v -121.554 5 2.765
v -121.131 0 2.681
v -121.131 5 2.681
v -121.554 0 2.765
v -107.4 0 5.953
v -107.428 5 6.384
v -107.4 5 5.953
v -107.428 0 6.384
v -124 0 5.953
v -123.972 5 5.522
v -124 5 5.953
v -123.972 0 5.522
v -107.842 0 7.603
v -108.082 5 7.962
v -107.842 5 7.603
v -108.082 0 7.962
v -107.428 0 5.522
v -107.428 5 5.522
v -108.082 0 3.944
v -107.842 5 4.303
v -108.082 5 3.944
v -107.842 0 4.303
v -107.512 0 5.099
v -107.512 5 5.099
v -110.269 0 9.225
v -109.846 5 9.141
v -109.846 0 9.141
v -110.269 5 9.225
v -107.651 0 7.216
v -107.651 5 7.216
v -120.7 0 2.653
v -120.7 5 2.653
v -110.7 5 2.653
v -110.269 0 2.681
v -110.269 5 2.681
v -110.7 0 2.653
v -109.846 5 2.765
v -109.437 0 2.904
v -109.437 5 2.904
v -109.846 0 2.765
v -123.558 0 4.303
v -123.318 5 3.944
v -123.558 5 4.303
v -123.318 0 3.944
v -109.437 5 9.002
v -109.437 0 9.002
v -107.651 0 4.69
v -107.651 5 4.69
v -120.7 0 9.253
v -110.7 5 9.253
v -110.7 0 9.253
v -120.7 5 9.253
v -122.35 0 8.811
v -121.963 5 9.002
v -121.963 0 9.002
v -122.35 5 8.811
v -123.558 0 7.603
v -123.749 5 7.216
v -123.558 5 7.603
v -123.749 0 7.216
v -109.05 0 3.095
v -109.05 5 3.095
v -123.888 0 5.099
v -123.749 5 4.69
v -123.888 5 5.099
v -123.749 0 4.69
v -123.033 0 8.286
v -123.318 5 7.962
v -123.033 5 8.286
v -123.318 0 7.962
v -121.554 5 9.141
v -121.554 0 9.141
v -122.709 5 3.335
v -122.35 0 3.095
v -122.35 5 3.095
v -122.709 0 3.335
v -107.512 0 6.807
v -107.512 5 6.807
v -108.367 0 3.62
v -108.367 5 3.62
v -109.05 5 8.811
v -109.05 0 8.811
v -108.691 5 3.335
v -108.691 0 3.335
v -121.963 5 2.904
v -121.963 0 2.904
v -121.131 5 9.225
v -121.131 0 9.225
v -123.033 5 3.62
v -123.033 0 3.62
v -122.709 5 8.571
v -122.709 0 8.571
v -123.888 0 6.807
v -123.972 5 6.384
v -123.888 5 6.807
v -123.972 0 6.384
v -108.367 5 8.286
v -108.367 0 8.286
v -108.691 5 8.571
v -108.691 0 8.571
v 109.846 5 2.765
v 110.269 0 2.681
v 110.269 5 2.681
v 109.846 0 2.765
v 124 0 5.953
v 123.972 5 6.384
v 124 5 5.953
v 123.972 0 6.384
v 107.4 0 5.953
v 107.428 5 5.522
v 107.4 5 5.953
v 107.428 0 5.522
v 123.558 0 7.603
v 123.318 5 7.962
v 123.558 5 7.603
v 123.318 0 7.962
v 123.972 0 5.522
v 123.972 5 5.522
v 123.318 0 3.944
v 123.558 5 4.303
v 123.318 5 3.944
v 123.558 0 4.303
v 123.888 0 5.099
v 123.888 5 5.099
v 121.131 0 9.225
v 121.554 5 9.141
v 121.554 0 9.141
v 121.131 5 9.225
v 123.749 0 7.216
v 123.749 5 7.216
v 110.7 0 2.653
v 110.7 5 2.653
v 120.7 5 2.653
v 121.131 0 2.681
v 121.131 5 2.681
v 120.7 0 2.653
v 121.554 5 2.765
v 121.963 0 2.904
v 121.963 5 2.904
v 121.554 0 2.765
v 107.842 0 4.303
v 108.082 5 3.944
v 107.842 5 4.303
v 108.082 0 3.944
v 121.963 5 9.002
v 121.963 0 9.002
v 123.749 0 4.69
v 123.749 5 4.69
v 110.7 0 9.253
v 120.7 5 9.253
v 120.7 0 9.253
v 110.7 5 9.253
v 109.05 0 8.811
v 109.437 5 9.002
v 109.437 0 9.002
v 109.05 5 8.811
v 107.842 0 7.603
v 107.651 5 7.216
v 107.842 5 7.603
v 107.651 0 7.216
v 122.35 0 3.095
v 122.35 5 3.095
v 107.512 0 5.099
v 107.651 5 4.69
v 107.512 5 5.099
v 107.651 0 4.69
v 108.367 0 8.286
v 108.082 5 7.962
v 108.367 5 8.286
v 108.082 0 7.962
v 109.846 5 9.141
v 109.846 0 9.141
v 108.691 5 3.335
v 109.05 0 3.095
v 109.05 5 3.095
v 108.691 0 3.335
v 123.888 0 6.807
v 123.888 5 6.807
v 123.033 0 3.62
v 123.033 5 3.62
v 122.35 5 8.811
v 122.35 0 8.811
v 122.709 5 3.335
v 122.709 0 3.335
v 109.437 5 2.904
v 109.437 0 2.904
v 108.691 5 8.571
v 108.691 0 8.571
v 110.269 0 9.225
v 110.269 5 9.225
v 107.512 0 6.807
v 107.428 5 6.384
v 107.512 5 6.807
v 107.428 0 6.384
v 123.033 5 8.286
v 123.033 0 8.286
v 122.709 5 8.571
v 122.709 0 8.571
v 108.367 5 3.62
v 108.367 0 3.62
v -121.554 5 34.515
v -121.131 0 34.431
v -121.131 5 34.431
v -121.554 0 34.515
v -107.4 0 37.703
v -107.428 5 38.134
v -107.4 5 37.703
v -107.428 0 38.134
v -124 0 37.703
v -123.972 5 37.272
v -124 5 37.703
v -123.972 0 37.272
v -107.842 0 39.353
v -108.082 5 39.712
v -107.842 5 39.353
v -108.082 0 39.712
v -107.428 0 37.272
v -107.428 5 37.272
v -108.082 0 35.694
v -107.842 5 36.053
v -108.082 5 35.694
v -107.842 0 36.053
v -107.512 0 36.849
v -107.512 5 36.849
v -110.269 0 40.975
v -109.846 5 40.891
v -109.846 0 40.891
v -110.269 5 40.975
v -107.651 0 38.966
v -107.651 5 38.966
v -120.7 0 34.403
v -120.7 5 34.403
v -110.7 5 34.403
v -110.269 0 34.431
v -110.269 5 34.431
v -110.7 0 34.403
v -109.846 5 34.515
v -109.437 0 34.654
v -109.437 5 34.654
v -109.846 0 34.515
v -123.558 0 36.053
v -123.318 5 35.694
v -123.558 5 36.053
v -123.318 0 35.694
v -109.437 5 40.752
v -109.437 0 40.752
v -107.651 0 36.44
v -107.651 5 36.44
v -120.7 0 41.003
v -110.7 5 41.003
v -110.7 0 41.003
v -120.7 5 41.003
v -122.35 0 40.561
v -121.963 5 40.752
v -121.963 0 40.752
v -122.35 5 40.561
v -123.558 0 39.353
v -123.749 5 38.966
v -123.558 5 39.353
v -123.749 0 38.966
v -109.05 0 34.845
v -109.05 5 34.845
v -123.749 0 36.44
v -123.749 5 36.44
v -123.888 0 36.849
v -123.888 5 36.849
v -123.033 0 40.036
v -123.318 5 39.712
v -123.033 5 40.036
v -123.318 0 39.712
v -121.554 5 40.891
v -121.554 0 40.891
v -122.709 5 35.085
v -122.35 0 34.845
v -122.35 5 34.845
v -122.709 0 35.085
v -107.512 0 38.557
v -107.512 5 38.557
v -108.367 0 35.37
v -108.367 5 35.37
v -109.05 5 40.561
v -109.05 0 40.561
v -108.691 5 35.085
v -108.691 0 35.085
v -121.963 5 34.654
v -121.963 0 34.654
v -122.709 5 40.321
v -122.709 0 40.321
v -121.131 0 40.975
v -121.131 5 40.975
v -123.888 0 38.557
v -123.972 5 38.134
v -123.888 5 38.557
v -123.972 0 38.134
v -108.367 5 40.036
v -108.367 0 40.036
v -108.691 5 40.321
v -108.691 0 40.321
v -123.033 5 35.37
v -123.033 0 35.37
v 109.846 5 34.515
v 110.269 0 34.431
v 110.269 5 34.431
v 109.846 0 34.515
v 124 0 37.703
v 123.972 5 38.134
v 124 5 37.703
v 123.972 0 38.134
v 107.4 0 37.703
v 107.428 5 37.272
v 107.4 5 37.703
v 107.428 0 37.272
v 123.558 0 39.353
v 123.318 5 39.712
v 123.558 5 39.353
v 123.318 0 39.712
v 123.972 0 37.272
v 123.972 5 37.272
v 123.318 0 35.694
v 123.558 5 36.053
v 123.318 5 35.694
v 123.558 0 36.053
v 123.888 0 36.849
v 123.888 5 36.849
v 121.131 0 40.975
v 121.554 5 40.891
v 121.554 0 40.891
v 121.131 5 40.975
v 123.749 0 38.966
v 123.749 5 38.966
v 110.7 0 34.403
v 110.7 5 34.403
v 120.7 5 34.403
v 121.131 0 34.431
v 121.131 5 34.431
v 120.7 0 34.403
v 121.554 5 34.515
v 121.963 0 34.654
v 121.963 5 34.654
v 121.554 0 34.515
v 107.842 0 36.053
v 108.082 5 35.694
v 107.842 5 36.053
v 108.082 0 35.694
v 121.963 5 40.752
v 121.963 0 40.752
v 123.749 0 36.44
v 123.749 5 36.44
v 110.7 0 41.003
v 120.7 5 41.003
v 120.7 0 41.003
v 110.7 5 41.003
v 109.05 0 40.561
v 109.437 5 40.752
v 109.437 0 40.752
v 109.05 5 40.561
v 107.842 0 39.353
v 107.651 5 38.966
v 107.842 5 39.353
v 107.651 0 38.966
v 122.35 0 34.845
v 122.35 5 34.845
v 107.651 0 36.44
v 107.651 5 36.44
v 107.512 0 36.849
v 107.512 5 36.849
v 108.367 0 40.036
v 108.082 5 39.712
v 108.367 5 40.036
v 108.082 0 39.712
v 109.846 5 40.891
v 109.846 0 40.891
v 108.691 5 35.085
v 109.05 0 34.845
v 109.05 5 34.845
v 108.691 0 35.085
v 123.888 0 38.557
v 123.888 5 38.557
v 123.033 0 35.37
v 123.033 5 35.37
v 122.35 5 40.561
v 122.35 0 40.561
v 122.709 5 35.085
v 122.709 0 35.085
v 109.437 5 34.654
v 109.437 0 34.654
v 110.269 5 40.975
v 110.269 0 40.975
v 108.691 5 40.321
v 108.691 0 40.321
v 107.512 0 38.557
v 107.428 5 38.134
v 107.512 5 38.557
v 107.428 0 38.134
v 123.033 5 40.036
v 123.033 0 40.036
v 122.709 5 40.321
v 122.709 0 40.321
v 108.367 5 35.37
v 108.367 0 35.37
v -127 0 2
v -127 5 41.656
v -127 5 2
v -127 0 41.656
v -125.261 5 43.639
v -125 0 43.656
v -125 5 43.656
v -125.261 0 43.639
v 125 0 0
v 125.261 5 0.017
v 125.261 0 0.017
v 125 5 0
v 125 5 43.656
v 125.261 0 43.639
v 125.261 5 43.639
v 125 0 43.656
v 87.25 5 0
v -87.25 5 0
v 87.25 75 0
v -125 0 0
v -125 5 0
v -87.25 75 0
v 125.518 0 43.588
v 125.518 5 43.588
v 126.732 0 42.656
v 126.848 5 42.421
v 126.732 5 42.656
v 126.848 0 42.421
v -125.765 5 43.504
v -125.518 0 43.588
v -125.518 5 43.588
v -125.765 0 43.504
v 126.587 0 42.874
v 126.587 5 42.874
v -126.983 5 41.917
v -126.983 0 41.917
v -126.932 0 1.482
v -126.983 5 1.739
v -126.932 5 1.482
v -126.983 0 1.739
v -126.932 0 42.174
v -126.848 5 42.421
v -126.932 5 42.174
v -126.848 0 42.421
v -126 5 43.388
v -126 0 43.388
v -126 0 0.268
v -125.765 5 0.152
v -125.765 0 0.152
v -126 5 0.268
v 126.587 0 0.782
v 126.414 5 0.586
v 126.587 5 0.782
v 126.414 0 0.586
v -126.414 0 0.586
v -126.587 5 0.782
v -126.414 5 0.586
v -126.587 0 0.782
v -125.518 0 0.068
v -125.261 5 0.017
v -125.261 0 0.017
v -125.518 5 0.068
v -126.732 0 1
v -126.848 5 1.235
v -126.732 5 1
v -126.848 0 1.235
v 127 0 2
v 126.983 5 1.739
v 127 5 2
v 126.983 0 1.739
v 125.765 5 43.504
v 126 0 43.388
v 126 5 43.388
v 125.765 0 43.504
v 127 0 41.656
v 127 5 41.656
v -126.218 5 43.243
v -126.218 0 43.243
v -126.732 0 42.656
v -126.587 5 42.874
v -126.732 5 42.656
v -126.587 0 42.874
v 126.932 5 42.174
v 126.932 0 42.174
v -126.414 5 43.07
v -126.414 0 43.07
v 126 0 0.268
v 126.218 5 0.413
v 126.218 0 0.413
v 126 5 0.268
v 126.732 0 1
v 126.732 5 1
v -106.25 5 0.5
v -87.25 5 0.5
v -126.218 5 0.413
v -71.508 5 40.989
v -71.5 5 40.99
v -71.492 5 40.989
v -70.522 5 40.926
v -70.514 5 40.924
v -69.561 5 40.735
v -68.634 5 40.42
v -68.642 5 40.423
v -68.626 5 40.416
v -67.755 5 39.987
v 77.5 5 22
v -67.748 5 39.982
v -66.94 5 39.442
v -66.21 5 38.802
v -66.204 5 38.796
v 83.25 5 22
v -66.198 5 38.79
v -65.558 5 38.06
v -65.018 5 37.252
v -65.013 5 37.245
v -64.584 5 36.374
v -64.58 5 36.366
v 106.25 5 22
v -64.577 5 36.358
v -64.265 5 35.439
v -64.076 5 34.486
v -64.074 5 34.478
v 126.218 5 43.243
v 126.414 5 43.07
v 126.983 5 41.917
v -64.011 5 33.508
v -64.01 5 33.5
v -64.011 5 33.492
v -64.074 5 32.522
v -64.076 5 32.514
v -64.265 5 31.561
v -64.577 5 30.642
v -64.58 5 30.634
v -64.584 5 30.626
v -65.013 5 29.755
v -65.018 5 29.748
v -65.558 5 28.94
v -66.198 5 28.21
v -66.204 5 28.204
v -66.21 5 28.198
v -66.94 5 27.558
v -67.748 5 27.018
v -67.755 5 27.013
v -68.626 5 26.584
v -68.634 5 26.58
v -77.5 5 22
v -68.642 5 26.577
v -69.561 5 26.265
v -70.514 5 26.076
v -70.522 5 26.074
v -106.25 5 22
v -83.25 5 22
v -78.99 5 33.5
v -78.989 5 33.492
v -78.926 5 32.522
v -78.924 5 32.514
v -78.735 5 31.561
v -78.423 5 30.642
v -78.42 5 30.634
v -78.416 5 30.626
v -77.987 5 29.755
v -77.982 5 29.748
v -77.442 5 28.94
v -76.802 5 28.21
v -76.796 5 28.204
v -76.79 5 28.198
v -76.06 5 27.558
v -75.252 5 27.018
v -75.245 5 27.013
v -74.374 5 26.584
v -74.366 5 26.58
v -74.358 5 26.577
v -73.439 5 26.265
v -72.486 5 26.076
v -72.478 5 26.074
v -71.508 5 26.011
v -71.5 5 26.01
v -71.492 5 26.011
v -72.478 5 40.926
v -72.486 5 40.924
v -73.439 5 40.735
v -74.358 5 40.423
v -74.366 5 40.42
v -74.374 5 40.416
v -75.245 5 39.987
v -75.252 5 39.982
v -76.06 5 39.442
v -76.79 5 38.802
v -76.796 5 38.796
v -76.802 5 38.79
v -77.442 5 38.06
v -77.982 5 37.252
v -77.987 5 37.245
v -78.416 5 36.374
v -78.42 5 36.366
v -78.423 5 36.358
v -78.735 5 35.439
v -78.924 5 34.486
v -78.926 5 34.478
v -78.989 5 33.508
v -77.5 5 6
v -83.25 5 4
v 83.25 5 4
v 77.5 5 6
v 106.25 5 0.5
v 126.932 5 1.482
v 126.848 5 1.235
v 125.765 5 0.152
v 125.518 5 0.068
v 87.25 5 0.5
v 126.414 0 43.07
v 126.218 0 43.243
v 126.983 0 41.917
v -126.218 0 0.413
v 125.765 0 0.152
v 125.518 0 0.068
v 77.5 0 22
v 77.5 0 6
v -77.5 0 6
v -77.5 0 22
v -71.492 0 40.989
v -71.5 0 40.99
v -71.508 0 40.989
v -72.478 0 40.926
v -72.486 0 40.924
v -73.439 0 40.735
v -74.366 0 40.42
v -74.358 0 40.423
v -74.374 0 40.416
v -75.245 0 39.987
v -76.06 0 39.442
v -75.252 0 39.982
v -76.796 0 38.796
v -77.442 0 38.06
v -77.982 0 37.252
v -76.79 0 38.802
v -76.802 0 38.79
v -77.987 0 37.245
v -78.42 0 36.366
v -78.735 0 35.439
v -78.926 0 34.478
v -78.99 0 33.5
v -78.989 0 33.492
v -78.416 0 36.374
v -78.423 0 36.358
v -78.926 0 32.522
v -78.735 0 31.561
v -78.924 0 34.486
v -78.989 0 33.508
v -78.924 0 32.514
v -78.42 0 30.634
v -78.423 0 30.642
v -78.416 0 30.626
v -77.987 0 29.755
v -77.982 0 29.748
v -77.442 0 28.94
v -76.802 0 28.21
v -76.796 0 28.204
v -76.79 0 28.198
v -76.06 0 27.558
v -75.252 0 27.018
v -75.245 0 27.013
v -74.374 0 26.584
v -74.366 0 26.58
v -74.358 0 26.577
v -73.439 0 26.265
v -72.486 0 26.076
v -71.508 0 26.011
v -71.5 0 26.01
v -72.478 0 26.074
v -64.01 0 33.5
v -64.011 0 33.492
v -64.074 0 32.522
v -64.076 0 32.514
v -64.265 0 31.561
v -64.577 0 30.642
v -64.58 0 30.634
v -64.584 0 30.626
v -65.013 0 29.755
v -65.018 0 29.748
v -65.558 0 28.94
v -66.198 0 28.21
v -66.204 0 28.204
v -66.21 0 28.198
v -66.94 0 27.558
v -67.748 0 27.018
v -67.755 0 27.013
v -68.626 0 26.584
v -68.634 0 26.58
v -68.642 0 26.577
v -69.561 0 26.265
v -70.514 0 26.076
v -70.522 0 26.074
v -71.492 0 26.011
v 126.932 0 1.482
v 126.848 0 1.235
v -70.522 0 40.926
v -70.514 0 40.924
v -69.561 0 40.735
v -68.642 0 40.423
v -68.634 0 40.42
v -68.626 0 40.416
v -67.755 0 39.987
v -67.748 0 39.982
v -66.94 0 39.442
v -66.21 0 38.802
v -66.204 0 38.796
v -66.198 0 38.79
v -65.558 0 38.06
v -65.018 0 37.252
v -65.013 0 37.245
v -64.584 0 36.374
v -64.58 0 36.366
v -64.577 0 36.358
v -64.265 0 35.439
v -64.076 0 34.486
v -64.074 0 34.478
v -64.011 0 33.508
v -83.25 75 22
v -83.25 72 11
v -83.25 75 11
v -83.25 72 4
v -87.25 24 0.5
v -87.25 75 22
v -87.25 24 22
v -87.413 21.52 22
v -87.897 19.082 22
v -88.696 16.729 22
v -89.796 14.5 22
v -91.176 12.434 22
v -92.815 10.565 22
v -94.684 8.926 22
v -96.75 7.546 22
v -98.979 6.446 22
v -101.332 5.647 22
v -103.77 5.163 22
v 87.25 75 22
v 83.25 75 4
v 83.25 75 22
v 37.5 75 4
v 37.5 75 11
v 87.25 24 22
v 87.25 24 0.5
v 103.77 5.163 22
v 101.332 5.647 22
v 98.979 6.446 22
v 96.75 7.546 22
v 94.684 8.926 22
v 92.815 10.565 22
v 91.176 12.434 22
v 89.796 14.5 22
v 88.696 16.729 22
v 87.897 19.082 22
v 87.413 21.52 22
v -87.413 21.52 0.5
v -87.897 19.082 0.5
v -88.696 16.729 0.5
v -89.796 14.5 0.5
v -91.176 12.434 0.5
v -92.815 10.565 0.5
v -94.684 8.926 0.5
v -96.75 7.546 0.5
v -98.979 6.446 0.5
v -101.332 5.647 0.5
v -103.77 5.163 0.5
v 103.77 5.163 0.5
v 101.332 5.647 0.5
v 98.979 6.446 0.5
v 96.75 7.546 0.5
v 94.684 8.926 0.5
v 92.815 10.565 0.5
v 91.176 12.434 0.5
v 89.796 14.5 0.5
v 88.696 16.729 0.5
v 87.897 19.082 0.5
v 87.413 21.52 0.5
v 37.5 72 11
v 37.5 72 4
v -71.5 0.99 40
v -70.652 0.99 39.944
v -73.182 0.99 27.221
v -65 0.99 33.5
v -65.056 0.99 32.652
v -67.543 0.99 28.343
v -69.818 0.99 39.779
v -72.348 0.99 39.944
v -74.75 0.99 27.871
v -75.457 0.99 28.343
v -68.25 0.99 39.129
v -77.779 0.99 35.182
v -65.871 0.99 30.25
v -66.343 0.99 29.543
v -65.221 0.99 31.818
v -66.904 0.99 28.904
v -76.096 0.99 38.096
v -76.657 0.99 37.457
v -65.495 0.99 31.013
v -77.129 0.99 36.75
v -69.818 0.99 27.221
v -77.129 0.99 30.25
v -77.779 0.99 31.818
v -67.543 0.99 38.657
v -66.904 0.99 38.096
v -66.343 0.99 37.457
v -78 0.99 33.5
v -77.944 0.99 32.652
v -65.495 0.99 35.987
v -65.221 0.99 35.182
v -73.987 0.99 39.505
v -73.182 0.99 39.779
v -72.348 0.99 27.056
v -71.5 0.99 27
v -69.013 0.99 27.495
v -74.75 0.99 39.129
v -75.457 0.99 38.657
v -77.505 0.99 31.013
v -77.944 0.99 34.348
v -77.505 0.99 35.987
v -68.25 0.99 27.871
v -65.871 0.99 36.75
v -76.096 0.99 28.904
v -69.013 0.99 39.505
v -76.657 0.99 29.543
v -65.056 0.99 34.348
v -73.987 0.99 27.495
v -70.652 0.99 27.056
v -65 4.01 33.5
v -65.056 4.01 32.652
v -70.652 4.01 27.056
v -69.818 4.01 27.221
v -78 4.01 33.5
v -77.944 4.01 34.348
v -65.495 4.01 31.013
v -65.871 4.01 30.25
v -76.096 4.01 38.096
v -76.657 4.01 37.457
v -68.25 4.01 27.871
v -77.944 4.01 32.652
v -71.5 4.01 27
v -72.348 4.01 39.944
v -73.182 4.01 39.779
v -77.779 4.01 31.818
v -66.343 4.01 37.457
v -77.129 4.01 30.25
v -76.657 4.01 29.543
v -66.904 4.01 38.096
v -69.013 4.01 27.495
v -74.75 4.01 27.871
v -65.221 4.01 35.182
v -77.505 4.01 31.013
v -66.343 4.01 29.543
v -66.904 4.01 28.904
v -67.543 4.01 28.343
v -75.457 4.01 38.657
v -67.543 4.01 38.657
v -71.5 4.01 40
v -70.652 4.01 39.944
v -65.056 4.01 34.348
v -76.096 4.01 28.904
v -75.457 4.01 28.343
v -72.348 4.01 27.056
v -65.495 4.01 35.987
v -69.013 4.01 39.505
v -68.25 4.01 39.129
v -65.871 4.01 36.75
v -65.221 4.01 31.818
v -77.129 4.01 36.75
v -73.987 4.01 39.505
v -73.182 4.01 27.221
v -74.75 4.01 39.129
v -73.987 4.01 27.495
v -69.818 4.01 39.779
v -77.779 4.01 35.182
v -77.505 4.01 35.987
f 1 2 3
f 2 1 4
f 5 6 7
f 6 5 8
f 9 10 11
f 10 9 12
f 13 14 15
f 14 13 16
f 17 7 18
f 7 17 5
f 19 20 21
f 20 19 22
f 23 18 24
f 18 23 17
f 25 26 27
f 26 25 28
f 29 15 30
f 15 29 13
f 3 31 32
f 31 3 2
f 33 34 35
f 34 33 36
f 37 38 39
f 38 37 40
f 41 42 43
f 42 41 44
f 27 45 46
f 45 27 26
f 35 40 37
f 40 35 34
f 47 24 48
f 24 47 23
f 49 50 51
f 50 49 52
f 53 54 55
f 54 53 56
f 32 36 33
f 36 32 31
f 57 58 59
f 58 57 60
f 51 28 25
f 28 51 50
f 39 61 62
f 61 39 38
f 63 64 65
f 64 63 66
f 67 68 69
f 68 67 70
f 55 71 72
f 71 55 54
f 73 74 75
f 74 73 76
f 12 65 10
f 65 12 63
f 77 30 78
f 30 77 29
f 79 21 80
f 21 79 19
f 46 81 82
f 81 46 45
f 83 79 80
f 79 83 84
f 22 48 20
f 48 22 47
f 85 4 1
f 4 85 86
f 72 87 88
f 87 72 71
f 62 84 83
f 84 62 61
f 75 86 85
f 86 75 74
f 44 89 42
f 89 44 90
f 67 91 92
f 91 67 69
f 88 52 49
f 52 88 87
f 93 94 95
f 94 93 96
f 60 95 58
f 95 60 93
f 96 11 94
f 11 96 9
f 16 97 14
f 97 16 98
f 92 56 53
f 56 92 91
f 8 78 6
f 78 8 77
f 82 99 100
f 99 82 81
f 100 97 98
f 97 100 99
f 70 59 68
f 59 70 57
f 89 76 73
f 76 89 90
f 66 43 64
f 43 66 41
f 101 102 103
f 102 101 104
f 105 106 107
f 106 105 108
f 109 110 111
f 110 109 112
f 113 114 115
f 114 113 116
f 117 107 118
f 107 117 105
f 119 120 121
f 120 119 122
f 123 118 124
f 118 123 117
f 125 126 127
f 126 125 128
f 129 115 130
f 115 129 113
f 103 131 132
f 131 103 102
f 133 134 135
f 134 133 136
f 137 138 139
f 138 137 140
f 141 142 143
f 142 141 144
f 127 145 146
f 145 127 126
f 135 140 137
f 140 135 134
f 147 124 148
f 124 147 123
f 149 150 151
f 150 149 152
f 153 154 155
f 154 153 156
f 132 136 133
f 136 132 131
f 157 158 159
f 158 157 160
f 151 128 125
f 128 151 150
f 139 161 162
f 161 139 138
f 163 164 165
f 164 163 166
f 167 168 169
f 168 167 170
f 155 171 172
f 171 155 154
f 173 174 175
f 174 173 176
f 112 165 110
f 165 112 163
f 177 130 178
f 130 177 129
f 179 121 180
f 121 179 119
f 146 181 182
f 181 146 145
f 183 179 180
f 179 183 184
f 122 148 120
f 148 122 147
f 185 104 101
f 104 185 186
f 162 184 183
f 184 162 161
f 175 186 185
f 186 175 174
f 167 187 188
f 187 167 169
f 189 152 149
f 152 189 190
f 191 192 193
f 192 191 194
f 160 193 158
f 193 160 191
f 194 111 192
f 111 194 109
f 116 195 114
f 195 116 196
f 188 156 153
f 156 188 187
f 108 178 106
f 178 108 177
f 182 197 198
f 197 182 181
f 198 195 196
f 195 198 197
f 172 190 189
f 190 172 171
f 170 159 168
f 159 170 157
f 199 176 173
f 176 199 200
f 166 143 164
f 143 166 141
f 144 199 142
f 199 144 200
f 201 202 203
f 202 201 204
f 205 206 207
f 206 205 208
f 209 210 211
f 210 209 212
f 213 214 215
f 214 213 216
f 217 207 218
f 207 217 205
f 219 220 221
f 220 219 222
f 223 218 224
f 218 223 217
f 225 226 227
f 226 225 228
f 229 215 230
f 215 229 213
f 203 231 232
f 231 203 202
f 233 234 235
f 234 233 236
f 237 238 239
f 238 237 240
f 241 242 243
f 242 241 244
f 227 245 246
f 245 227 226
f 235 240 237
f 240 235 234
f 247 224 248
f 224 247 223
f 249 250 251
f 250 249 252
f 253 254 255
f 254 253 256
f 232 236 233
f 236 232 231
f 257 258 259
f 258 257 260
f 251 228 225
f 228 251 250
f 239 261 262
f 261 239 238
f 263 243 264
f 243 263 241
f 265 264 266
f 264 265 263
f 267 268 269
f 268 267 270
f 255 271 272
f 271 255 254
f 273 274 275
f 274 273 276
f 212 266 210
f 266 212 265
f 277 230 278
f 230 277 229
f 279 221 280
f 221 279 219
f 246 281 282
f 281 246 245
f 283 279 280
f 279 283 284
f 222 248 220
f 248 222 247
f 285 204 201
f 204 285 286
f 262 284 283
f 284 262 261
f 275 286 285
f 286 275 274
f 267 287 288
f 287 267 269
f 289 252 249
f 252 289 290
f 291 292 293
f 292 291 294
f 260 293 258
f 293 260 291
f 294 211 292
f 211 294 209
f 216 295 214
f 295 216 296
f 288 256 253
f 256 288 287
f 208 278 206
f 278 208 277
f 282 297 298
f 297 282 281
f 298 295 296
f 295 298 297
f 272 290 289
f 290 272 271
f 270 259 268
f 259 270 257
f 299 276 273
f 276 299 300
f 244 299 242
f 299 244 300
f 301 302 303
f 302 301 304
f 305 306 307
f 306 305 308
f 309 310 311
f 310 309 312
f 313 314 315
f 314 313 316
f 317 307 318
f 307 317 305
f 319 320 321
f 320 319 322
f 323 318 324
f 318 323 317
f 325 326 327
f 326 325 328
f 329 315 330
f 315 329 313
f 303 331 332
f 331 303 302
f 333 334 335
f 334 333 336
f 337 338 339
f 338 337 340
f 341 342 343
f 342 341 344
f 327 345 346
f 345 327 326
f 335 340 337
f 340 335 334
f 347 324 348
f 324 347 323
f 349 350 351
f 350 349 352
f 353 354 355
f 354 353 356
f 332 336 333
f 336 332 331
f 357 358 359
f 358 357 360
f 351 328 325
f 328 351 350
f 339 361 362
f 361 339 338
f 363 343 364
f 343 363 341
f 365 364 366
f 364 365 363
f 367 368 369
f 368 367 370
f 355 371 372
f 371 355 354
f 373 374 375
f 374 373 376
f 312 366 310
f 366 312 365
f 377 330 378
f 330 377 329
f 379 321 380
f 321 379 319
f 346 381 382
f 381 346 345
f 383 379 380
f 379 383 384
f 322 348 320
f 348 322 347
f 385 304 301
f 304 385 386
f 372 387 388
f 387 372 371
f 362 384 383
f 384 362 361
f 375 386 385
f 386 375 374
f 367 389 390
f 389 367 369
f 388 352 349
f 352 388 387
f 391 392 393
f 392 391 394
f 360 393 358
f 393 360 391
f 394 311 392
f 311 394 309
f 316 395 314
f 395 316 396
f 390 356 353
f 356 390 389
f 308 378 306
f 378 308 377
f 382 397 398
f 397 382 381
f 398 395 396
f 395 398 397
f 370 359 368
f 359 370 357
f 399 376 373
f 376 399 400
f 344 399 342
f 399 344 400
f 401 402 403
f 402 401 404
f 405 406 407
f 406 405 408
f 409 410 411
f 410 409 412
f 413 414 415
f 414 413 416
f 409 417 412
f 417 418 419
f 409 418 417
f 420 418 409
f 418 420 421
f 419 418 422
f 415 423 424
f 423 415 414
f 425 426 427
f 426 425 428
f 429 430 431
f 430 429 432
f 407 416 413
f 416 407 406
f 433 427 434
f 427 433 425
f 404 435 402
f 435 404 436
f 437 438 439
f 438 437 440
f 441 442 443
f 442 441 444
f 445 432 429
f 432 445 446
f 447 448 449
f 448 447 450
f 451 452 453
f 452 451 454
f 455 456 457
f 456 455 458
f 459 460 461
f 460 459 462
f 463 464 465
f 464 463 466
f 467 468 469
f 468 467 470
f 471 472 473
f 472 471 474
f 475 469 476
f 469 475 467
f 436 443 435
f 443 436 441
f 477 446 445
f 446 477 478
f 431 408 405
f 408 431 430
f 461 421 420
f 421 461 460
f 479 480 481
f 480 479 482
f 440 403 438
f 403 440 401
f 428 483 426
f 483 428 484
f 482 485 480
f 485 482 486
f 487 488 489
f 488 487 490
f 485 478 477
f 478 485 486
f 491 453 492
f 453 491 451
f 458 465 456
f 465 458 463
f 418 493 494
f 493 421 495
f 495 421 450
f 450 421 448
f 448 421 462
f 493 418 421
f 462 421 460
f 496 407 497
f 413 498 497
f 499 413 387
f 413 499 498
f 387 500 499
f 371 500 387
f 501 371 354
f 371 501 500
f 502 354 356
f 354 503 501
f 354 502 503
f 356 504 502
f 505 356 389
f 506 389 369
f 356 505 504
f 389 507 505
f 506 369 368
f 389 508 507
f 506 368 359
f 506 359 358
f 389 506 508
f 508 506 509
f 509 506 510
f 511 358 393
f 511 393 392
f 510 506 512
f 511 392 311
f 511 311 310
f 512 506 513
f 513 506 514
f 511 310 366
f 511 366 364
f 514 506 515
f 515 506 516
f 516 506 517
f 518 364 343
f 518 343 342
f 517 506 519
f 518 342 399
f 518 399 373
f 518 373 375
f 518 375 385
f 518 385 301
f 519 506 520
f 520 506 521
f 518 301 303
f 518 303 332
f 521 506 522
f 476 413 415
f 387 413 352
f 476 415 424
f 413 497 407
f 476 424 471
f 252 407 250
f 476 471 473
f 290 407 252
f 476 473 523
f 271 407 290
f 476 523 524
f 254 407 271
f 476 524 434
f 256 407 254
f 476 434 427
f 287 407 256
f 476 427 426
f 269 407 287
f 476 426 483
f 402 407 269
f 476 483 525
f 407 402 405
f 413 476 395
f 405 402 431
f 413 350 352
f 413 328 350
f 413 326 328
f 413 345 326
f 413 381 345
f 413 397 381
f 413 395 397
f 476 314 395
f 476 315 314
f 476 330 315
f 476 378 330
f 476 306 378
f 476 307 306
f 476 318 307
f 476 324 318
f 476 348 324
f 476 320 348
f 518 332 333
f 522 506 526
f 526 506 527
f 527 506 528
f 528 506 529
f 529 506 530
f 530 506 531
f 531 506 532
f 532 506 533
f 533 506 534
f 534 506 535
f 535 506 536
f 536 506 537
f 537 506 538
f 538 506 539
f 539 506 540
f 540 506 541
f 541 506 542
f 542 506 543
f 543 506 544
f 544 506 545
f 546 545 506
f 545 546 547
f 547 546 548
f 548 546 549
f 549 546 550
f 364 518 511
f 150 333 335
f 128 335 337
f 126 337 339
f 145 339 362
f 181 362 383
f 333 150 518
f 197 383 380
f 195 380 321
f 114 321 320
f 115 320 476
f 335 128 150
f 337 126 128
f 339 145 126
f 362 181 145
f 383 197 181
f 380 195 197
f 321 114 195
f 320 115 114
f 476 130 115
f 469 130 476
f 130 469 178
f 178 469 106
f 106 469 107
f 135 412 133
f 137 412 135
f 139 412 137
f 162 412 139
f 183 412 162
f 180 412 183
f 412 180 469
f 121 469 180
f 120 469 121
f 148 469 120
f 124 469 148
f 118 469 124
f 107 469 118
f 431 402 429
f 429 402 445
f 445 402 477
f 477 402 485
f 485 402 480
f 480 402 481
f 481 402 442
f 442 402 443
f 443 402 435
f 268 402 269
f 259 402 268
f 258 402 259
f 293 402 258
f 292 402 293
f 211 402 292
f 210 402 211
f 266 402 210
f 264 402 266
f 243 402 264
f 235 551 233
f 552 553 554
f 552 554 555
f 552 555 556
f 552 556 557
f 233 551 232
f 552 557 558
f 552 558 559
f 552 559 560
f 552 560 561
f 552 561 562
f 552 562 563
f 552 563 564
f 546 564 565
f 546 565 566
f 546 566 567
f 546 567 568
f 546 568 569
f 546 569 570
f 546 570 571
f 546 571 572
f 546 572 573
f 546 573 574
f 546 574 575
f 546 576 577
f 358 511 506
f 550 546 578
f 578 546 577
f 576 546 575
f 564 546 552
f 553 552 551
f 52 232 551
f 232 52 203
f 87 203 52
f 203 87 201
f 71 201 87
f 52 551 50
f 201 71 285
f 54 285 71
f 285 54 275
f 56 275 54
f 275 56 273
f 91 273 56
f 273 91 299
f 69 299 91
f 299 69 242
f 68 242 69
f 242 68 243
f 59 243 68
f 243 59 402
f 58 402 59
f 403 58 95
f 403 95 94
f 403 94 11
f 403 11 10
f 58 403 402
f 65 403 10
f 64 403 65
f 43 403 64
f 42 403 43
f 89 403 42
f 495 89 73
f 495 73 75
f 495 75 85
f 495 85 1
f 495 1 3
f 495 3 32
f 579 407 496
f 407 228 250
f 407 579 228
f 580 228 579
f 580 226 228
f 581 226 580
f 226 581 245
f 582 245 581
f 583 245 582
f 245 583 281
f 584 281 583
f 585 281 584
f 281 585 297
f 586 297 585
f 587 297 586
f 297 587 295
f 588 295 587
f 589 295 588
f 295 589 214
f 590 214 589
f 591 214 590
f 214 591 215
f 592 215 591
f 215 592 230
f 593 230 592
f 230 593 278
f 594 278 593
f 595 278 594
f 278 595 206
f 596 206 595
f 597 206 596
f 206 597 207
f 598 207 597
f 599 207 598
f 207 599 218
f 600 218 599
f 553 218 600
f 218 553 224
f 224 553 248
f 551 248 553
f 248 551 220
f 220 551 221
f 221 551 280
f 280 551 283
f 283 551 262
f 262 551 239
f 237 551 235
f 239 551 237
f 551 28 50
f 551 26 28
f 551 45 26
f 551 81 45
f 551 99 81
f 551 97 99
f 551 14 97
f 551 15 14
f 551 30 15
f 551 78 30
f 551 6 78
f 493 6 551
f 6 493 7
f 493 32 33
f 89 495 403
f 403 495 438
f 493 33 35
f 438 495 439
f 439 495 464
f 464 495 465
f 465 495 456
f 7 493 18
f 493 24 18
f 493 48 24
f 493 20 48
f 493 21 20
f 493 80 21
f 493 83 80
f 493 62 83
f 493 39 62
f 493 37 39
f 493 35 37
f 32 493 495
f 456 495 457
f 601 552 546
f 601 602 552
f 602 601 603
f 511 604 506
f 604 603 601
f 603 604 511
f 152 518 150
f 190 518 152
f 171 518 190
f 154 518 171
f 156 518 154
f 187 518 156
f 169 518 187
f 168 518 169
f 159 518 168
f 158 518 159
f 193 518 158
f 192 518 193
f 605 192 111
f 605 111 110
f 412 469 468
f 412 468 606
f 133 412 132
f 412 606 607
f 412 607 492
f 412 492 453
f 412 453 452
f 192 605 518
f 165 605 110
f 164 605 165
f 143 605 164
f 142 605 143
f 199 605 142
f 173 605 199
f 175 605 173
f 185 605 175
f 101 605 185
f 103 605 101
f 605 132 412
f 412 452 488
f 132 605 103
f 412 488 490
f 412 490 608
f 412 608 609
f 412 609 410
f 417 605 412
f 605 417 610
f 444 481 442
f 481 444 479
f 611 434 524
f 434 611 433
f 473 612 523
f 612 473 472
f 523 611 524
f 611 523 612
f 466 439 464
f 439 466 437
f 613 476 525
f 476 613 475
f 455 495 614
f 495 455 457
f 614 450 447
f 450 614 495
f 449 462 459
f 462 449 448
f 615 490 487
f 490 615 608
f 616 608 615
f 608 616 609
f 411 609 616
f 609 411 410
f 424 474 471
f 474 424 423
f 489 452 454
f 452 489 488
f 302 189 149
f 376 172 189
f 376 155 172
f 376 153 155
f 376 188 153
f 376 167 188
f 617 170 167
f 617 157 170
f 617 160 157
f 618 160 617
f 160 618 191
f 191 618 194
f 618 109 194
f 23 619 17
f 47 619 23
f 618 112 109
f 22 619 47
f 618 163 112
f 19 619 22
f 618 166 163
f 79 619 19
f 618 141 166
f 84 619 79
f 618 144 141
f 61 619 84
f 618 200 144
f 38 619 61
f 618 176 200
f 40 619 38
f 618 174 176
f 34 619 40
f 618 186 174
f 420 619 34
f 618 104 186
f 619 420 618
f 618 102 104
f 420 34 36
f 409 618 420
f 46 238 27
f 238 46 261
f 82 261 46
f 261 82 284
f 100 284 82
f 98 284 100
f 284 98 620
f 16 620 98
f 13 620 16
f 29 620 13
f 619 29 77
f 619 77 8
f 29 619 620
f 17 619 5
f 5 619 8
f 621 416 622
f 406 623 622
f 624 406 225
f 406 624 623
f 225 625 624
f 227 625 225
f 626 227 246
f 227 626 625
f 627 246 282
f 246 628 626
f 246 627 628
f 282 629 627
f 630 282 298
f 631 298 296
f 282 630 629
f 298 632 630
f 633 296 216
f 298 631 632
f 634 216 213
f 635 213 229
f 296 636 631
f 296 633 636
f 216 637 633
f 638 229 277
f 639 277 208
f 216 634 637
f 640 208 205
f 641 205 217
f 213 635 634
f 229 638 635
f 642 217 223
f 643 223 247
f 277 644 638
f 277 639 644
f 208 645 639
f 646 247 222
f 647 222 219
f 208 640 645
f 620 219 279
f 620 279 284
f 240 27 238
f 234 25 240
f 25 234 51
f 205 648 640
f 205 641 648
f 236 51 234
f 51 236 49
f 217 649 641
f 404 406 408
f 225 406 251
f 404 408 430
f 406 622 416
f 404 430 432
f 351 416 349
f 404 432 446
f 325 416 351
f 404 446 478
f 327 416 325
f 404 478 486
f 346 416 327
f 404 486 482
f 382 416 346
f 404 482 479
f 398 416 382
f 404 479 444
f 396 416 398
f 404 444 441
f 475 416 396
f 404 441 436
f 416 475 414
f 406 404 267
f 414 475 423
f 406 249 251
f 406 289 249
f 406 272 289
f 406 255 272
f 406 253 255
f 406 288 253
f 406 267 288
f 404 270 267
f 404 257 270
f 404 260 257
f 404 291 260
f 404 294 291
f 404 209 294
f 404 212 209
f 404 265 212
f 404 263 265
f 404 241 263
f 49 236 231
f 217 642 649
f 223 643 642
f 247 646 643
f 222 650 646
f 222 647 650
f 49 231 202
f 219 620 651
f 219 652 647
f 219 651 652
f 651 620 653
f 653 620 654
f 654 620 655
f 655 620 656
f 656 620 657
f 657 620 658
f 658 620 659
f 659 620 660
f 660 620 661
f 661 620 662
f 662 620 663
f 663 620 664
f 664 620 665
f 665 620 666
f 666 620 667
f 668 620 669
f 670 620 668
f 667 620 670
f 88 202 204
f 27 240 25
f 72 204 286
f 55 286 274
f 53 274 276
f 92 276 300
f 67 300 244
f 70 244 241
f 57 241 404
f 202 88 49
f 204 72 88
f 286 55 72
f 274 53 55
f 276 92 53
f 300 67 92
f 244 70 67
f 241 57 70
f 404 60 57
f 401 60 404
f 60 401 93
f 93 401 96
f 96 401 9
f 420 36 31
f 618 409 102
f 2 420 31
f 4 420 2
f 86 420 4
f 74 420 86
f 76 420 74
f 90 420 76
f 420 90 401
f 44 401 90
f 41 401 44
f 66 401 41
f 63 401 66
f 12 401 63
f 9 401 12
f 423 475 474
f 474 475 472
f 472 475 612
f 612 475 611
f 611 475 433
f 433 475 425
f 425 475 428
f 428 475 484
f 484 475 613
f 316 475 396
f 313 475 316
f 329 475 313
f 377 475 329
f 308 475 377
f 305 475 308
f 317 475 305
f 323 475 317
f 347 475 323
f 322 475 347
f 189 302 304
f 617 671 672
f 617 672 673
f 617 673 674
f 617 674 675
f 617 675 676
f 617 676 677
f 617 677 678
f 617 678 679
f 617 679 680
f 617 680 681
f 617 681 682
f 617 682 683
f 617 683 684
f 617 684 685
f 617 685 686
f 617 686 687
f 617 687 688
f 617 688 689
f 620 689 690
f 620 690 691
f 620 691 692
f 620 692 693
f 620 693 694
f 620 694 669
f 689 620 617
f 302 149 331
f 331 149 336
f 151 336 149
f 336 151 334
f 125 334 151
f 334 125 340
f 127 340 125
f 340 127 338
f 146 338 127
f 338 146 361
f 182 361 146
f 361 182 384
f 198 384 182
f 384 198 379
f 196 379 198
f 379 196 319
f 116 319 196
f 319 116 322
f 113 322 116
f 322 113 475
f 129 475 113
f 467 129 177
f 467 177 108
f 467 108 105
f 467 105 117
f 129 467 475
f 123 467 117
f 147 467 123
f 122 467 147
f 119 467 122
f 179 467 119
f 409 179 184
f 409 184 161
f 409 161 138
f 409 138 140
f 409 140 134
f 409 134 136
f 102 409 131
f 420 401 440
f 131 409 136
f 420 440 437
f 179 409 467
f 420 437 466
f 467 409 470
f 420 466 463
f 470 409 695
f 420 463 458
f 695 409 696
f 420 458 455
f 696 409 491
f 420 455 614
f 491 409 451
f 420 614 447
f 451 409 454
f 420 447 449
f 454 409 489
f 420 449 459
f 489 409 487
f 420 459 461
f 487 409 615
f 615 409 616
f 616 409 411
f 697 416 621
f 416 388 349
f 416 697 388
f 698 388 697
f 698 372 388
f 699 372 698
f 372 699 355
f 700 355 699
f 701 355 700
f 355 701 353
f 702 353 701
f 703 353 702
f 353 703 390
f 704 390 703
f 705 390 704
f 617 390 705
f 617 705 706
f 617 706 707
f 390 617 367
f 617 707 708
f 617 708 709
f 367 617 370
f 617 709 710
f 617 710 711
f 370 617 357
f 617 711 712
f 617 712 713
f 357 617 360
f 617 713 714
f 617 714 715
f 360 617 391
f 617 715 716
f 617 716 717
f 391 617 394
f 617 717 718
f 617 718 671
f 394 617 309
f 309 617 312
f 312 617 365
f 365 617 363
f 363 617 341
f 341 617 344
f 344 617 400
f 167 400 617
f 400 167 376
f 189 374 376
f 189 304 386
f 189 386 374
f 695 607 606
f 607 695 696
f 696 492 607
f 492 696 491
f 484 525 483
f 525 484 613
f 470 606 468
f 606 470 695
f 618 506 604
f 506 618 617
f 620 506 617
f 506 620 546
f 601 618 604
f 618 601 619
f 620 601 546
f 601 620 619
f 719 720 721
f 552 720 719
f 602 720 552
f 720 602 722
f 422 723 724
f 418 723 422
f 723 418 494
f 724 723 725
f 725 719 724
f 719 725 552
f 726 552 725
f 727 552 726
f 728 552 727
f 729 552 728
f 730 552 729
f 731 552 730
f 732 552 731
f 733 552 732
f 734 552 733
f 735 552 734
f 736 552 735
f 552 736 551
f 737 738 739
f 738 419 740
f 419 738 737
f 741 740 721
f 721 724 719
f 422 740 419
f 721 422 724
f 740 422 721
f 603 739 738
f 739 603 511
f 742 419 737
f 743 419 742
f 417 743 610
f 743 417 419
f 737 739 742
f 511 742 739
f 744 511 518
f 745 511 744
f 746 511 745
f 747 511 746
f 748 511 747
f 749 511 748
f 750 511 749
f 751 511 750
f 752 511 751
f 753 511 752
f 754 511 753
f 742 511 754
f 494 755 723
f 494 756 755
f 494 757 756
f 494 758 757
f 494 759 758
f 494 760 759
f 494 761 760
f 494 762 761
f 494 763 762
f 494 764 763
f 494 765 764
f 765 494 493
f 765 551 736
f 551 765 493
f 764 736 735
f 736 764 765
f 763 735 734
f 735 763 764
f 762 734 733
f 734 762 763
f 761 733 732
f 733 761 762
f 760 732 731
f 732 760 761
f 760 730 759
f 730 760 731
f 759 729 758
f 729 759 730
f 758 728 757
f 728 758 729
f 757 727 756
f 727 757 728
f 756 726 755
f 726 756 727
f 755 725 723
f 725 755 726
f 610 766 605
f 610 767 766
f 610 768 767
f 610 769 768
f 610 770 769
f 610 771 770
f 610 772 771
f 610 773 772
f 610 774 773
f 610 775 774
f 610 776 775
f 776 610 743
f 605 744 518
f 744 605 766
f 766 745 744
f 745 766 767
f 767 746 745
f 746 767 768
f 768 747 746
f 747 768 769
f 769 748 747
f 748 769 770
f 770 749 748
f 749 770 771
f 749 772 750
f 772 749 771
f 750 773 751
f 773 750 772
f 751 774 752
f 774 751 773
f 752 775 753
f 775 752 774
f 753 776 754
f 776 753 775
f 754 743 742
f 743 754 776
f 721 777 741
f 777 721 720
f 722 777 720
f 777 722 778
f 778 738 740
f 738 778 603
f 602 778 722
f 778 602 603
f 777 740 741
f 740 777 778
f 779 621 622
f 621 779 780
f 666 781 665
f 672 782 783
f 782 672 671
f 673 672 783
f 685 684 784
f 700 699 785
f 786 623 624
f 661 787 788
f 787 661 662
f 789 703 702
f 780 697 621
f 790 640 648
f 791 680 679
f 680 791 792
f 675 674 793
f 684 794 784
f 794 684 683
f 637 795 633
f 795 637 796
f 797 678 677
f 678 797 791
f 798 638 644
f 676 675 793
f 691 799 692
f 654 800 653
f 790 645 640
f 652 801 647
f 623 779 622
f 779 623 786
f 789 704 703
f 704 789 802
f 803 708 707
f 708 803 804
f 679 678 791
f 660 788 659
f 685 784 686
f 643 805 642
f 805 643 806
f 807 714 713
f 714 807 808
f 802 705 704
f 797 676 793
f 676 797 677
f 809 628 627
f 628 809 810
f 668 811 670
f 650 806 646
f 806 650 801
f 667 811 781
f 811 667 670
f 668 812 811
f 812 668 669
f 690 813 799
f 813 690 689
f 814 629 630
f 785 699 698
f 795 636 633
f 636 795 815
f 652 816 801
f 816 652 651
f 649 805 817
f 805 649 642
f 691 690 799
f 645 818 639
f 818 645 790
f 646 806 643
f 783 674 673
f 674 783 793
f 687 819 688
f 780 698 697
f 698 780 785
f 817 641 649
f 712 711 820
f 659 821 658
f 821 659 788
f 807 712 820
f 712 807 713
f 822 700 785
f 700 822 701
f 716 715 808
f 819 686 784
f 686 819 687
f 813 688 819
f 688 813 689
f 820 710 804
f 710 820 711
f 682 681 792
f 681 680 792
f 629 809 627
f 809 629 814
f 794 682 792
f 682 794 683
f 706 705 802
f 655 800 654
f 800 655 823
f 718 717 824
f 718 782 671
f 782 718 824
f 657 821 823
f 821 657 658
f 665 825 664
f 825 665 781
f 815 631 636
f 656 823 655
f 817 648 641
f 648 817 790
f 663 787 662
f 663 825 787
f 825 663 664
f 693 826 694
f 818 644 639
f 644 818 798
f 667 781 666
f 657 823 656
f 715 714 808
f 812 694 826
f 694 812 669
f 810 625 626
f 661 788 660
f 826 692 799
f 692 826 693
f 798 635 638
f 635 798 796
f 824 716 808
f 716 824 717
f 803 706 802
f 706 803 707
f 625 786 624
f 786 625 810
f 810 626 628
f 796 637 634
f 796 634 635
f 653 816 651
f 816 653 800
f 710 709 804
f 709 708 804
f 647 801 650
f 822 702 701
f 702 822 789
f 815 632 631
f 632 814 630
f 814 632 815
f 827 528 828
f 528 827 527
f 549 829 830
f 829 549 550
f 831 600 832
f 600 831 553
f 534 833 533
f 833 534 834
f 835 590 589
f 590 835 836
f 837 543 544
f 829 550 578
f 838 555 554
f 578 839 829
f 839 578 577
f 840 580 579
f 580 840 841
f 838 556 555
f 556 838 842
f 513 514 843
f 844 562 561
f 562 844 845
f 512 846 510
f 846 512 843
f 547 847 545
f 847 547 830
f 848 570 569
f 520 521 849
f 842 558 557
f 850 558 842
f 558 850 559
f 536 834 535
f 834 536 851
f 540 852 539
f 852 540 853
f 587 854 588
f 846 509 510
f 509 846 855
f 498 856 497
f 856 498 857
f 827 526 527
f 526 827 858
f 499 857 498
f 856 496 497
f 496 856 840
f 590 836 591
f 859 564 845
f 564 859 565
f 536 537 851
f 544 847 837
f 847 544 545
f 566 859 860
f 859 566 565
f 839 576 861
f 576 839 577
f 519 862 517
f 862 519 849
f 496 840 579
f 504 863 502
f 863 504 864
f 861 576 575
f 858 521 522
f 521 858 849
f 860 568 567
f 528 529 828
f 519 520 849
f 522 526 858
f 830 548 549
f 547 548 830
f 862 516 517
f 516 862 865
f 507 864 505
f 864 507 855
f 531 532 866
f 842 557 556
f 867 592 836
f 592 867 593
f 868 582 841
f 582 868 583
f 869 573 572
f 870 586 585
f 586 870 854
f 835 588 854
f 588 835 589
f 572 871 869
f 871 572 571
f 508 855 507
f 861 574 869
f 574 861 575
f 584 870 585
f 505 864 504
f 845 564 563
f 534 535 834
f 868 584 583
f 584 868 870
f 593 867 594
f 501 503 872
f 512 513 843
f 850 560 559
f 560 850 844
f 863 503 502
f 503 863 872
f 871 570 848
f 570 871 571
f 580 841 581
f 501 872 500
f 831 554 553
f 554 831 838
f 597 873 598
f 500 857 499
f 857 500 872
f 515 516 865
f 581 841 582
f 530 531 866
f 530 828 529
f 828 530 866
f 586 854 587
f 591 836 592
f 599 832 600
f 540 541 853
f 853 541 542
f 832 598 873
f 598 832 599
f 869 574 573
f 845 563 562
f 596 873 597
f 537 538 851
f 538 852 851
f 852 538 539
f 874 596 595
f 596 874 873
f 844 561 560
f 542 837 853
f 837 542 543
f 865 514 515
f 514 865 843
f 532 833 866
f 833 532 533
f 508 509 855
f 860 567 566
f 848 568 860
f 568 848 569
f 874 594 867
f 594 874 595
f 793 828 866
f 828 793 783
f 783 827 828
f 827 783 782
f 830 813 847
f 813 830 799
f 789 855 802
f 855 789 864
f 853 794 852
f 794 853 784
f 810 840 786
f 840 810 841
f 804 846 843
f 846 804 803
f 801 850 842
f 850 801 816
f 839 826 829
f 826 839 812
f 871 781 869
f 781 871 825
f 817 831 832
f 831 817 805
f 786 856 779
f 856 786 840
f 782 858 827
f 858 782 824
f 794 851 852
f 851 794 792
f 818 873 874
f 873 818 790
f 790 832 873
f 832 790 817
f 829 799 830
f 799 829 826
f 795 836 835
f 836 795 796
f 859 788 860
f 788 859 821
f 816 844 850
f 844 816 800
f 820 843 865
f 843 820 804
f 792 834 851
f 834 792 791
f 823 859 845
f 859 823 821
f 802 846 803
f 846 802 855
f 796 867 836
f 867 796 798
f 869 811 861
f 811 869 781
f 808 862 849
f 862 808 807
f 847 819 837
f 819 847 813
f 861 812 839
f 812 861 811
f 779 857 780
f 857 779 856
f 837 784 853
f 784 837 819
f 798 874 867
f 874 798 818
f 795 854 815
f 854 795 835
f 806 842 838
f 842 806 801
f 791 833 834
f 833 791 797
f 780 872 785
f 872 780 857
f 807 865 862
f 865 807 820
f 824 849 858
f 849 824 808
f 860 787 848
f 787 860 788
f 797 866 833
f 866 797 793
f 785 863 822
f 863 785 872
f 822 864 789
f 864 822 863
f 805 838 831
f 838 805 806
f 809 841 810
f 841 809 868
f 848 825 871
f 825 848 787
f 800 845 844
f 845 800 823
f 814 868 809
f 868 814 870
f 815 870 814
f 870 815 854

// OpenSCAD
// Mounting bracket for a TP-Link 7-port USB 3.0 hub in a 10" benchtop rack, 1U.
// Geometry comes from ../lib/rack10.scad; this file only holds the hub numbers.
//
//   * The seven USB outputs are on the front and fit within 155 mm, so the
//     aperture is 155 mm wide (5 mm lip at each side) and 1 mm smaller than the
//     hub at the top and bottom.
//   * Power and USB-in are on the back, at the right end seen from the front.
//     The rear lip has a 45 mm gap there for the plugs.
//   * The power button is on top of the hub, 11 mm from its left side. Rather
//     than a lever, the hub sits as low as the bracket allows (shelf on the
//     panel bottom) and a round hole in the panel above the hub lets a pencil
//     reach in and press the button from the front.
//   * Shelf with side fins; the hub is dropped in from above and lifted
//     straight out.
//
// Print with the front panel face down on the bed (print_orientation = true).

include <../lib/rack10.scad>

/* [USB hub] */
unit_w = 165;
unit_h = 20;
unit_d = 66;
aperture_w = 155;           // the USB outputs fit within this width
rear_gap_w = 45;            // opening in the rear lip for power and USB-in, at the right end
button_x = 11;              // power button, from the left side of the hub (seen from the front)
button_y = 20;              // power button, from the front face of the hub (TODO: measure)

/* [Bracket] */
rack_u = 1;
lip_z = 2;                  // panel overlaps the hub by this much at the top and bottom
side_clear = 0.75;          // clearance between hub and each side wall
rear_clear = 1.0;           // clearance between hub and the rear stop
shelf_t = 4;                // shelf thickness; the shelf sits on the panel bottom
wall_t = 4;                 // side wall thickness
wall_above_shelf = 18;      // side wall height above the shelf top
wall_bottom = 0.5;          // side walls extend down to this z (stiffens the shelf)
fillet_r = 19;              // fillet between the outside of each side wall and the panel
                            // (0: none); max ~19 before it reaches the mounting slots
rear_stop_t = 3;            // rear lip thickness
rear_stop_h = 7;            // rear lip height above the shelf (0 for none)

/* [Power button access] */
button_hole_d = 13;         // hole in the panel above the hub, for a pencil (0: none);
                            // max ~14 between the aperture and the top edge
button_hole_z = 33.5;       // hole centre above the panel bottom
button_hole_chamfer = 1;    // edge chamfer on both faces of the hole

/* [Rendering] */
print_orientation = false;  // true: lay the bracket with the front panel on the bed
show_unit = false;          // ghost of the hub for checking fit
$fn = 48;

unit    = [unit_w, unit_d, unit_h];
panel_t = 5;
panel_h = panel_height(rack_u);
unit_z  = shelf_t;                                // hub bottom; the shelf rests on z = 0
lip     = [(unit_w - aperture_w) / 2, lip_z];
hole_x  = -unit_w / 2 + button_x;                 // the hole is straight above the button

assert(button_hole_d == 0 || button_hole_z - button_hole_d / 2 >= unit_z + unit_h - lip_z + 3,
       "button hole breaks into the aperture: raise button_hole_z or shrink it");
assert(button_hole_d == 0 || button_hole_z + button_hole_d / 2 <= panel_h - 3,
       "button hole too close to the top of the panel");
assert(button_hole_d == 0 || abs(hole_x) + button_hole_d / 2 <= unit_w / 2,
       "button hole is outside the width of the hub");

echo(str("pencil reaches the button at ", atan((button_hole_z - (unit_z + unit_h)) / (panel_t + button_y)),
         " degrees down from the hole (button ", button_y, " mm behind the front)"));

module button_hole() {
    translate([hole_x, 0, button_hole_z]) rotate([-90, 0, 0]) {
        translate([0, 0, -1]) cylinder(d = button_hole_d, h = panel_t + 2);
        c = button_hole_chamfer;
        if (c > 0) {
            translate([0, 0, -0.01]) cylinder(d1 = button_hole_d + 2 * c, d2 = button_hole_d, h = c);
            translate([0, 0, panel_t - c + 0.01]) cylinder(d1 = button_hole_d, d2 = button_hole_d + 2 * c, h = c);
        }
    }
}

print_oriented(print_orientation) {
    difference() {
        shelf_bracket(unit, rack_u = rack_u, lip = lip, unit_z = unit_z,
                      side_clear = side_clear, rear_clear = rear_clear,
                      shelf_t = shelf_t, wall_t = wall_t,
                      wall_above_shelf = wall_above_shelf, wall_bottom = wall_bottom,
                      rear_stop_t = rear_stop_t, rear_stop_h = rear_stop_h,
                      rear_stop_gaps = [[unit_w - rear_gap_w, unit_w]],
                      fillet_r = fillet_r);
        if (button_hole_d > 0) button_hole();
    }
    if (show_unit) {
        unit_ghost(unit, rack_u, unit_z = unit_z);
        // the power button
        %translate([hole_x, panel_t + button_y, unit_z + unit_h]) cylinder(d = 6, h = 1);
    }
}
